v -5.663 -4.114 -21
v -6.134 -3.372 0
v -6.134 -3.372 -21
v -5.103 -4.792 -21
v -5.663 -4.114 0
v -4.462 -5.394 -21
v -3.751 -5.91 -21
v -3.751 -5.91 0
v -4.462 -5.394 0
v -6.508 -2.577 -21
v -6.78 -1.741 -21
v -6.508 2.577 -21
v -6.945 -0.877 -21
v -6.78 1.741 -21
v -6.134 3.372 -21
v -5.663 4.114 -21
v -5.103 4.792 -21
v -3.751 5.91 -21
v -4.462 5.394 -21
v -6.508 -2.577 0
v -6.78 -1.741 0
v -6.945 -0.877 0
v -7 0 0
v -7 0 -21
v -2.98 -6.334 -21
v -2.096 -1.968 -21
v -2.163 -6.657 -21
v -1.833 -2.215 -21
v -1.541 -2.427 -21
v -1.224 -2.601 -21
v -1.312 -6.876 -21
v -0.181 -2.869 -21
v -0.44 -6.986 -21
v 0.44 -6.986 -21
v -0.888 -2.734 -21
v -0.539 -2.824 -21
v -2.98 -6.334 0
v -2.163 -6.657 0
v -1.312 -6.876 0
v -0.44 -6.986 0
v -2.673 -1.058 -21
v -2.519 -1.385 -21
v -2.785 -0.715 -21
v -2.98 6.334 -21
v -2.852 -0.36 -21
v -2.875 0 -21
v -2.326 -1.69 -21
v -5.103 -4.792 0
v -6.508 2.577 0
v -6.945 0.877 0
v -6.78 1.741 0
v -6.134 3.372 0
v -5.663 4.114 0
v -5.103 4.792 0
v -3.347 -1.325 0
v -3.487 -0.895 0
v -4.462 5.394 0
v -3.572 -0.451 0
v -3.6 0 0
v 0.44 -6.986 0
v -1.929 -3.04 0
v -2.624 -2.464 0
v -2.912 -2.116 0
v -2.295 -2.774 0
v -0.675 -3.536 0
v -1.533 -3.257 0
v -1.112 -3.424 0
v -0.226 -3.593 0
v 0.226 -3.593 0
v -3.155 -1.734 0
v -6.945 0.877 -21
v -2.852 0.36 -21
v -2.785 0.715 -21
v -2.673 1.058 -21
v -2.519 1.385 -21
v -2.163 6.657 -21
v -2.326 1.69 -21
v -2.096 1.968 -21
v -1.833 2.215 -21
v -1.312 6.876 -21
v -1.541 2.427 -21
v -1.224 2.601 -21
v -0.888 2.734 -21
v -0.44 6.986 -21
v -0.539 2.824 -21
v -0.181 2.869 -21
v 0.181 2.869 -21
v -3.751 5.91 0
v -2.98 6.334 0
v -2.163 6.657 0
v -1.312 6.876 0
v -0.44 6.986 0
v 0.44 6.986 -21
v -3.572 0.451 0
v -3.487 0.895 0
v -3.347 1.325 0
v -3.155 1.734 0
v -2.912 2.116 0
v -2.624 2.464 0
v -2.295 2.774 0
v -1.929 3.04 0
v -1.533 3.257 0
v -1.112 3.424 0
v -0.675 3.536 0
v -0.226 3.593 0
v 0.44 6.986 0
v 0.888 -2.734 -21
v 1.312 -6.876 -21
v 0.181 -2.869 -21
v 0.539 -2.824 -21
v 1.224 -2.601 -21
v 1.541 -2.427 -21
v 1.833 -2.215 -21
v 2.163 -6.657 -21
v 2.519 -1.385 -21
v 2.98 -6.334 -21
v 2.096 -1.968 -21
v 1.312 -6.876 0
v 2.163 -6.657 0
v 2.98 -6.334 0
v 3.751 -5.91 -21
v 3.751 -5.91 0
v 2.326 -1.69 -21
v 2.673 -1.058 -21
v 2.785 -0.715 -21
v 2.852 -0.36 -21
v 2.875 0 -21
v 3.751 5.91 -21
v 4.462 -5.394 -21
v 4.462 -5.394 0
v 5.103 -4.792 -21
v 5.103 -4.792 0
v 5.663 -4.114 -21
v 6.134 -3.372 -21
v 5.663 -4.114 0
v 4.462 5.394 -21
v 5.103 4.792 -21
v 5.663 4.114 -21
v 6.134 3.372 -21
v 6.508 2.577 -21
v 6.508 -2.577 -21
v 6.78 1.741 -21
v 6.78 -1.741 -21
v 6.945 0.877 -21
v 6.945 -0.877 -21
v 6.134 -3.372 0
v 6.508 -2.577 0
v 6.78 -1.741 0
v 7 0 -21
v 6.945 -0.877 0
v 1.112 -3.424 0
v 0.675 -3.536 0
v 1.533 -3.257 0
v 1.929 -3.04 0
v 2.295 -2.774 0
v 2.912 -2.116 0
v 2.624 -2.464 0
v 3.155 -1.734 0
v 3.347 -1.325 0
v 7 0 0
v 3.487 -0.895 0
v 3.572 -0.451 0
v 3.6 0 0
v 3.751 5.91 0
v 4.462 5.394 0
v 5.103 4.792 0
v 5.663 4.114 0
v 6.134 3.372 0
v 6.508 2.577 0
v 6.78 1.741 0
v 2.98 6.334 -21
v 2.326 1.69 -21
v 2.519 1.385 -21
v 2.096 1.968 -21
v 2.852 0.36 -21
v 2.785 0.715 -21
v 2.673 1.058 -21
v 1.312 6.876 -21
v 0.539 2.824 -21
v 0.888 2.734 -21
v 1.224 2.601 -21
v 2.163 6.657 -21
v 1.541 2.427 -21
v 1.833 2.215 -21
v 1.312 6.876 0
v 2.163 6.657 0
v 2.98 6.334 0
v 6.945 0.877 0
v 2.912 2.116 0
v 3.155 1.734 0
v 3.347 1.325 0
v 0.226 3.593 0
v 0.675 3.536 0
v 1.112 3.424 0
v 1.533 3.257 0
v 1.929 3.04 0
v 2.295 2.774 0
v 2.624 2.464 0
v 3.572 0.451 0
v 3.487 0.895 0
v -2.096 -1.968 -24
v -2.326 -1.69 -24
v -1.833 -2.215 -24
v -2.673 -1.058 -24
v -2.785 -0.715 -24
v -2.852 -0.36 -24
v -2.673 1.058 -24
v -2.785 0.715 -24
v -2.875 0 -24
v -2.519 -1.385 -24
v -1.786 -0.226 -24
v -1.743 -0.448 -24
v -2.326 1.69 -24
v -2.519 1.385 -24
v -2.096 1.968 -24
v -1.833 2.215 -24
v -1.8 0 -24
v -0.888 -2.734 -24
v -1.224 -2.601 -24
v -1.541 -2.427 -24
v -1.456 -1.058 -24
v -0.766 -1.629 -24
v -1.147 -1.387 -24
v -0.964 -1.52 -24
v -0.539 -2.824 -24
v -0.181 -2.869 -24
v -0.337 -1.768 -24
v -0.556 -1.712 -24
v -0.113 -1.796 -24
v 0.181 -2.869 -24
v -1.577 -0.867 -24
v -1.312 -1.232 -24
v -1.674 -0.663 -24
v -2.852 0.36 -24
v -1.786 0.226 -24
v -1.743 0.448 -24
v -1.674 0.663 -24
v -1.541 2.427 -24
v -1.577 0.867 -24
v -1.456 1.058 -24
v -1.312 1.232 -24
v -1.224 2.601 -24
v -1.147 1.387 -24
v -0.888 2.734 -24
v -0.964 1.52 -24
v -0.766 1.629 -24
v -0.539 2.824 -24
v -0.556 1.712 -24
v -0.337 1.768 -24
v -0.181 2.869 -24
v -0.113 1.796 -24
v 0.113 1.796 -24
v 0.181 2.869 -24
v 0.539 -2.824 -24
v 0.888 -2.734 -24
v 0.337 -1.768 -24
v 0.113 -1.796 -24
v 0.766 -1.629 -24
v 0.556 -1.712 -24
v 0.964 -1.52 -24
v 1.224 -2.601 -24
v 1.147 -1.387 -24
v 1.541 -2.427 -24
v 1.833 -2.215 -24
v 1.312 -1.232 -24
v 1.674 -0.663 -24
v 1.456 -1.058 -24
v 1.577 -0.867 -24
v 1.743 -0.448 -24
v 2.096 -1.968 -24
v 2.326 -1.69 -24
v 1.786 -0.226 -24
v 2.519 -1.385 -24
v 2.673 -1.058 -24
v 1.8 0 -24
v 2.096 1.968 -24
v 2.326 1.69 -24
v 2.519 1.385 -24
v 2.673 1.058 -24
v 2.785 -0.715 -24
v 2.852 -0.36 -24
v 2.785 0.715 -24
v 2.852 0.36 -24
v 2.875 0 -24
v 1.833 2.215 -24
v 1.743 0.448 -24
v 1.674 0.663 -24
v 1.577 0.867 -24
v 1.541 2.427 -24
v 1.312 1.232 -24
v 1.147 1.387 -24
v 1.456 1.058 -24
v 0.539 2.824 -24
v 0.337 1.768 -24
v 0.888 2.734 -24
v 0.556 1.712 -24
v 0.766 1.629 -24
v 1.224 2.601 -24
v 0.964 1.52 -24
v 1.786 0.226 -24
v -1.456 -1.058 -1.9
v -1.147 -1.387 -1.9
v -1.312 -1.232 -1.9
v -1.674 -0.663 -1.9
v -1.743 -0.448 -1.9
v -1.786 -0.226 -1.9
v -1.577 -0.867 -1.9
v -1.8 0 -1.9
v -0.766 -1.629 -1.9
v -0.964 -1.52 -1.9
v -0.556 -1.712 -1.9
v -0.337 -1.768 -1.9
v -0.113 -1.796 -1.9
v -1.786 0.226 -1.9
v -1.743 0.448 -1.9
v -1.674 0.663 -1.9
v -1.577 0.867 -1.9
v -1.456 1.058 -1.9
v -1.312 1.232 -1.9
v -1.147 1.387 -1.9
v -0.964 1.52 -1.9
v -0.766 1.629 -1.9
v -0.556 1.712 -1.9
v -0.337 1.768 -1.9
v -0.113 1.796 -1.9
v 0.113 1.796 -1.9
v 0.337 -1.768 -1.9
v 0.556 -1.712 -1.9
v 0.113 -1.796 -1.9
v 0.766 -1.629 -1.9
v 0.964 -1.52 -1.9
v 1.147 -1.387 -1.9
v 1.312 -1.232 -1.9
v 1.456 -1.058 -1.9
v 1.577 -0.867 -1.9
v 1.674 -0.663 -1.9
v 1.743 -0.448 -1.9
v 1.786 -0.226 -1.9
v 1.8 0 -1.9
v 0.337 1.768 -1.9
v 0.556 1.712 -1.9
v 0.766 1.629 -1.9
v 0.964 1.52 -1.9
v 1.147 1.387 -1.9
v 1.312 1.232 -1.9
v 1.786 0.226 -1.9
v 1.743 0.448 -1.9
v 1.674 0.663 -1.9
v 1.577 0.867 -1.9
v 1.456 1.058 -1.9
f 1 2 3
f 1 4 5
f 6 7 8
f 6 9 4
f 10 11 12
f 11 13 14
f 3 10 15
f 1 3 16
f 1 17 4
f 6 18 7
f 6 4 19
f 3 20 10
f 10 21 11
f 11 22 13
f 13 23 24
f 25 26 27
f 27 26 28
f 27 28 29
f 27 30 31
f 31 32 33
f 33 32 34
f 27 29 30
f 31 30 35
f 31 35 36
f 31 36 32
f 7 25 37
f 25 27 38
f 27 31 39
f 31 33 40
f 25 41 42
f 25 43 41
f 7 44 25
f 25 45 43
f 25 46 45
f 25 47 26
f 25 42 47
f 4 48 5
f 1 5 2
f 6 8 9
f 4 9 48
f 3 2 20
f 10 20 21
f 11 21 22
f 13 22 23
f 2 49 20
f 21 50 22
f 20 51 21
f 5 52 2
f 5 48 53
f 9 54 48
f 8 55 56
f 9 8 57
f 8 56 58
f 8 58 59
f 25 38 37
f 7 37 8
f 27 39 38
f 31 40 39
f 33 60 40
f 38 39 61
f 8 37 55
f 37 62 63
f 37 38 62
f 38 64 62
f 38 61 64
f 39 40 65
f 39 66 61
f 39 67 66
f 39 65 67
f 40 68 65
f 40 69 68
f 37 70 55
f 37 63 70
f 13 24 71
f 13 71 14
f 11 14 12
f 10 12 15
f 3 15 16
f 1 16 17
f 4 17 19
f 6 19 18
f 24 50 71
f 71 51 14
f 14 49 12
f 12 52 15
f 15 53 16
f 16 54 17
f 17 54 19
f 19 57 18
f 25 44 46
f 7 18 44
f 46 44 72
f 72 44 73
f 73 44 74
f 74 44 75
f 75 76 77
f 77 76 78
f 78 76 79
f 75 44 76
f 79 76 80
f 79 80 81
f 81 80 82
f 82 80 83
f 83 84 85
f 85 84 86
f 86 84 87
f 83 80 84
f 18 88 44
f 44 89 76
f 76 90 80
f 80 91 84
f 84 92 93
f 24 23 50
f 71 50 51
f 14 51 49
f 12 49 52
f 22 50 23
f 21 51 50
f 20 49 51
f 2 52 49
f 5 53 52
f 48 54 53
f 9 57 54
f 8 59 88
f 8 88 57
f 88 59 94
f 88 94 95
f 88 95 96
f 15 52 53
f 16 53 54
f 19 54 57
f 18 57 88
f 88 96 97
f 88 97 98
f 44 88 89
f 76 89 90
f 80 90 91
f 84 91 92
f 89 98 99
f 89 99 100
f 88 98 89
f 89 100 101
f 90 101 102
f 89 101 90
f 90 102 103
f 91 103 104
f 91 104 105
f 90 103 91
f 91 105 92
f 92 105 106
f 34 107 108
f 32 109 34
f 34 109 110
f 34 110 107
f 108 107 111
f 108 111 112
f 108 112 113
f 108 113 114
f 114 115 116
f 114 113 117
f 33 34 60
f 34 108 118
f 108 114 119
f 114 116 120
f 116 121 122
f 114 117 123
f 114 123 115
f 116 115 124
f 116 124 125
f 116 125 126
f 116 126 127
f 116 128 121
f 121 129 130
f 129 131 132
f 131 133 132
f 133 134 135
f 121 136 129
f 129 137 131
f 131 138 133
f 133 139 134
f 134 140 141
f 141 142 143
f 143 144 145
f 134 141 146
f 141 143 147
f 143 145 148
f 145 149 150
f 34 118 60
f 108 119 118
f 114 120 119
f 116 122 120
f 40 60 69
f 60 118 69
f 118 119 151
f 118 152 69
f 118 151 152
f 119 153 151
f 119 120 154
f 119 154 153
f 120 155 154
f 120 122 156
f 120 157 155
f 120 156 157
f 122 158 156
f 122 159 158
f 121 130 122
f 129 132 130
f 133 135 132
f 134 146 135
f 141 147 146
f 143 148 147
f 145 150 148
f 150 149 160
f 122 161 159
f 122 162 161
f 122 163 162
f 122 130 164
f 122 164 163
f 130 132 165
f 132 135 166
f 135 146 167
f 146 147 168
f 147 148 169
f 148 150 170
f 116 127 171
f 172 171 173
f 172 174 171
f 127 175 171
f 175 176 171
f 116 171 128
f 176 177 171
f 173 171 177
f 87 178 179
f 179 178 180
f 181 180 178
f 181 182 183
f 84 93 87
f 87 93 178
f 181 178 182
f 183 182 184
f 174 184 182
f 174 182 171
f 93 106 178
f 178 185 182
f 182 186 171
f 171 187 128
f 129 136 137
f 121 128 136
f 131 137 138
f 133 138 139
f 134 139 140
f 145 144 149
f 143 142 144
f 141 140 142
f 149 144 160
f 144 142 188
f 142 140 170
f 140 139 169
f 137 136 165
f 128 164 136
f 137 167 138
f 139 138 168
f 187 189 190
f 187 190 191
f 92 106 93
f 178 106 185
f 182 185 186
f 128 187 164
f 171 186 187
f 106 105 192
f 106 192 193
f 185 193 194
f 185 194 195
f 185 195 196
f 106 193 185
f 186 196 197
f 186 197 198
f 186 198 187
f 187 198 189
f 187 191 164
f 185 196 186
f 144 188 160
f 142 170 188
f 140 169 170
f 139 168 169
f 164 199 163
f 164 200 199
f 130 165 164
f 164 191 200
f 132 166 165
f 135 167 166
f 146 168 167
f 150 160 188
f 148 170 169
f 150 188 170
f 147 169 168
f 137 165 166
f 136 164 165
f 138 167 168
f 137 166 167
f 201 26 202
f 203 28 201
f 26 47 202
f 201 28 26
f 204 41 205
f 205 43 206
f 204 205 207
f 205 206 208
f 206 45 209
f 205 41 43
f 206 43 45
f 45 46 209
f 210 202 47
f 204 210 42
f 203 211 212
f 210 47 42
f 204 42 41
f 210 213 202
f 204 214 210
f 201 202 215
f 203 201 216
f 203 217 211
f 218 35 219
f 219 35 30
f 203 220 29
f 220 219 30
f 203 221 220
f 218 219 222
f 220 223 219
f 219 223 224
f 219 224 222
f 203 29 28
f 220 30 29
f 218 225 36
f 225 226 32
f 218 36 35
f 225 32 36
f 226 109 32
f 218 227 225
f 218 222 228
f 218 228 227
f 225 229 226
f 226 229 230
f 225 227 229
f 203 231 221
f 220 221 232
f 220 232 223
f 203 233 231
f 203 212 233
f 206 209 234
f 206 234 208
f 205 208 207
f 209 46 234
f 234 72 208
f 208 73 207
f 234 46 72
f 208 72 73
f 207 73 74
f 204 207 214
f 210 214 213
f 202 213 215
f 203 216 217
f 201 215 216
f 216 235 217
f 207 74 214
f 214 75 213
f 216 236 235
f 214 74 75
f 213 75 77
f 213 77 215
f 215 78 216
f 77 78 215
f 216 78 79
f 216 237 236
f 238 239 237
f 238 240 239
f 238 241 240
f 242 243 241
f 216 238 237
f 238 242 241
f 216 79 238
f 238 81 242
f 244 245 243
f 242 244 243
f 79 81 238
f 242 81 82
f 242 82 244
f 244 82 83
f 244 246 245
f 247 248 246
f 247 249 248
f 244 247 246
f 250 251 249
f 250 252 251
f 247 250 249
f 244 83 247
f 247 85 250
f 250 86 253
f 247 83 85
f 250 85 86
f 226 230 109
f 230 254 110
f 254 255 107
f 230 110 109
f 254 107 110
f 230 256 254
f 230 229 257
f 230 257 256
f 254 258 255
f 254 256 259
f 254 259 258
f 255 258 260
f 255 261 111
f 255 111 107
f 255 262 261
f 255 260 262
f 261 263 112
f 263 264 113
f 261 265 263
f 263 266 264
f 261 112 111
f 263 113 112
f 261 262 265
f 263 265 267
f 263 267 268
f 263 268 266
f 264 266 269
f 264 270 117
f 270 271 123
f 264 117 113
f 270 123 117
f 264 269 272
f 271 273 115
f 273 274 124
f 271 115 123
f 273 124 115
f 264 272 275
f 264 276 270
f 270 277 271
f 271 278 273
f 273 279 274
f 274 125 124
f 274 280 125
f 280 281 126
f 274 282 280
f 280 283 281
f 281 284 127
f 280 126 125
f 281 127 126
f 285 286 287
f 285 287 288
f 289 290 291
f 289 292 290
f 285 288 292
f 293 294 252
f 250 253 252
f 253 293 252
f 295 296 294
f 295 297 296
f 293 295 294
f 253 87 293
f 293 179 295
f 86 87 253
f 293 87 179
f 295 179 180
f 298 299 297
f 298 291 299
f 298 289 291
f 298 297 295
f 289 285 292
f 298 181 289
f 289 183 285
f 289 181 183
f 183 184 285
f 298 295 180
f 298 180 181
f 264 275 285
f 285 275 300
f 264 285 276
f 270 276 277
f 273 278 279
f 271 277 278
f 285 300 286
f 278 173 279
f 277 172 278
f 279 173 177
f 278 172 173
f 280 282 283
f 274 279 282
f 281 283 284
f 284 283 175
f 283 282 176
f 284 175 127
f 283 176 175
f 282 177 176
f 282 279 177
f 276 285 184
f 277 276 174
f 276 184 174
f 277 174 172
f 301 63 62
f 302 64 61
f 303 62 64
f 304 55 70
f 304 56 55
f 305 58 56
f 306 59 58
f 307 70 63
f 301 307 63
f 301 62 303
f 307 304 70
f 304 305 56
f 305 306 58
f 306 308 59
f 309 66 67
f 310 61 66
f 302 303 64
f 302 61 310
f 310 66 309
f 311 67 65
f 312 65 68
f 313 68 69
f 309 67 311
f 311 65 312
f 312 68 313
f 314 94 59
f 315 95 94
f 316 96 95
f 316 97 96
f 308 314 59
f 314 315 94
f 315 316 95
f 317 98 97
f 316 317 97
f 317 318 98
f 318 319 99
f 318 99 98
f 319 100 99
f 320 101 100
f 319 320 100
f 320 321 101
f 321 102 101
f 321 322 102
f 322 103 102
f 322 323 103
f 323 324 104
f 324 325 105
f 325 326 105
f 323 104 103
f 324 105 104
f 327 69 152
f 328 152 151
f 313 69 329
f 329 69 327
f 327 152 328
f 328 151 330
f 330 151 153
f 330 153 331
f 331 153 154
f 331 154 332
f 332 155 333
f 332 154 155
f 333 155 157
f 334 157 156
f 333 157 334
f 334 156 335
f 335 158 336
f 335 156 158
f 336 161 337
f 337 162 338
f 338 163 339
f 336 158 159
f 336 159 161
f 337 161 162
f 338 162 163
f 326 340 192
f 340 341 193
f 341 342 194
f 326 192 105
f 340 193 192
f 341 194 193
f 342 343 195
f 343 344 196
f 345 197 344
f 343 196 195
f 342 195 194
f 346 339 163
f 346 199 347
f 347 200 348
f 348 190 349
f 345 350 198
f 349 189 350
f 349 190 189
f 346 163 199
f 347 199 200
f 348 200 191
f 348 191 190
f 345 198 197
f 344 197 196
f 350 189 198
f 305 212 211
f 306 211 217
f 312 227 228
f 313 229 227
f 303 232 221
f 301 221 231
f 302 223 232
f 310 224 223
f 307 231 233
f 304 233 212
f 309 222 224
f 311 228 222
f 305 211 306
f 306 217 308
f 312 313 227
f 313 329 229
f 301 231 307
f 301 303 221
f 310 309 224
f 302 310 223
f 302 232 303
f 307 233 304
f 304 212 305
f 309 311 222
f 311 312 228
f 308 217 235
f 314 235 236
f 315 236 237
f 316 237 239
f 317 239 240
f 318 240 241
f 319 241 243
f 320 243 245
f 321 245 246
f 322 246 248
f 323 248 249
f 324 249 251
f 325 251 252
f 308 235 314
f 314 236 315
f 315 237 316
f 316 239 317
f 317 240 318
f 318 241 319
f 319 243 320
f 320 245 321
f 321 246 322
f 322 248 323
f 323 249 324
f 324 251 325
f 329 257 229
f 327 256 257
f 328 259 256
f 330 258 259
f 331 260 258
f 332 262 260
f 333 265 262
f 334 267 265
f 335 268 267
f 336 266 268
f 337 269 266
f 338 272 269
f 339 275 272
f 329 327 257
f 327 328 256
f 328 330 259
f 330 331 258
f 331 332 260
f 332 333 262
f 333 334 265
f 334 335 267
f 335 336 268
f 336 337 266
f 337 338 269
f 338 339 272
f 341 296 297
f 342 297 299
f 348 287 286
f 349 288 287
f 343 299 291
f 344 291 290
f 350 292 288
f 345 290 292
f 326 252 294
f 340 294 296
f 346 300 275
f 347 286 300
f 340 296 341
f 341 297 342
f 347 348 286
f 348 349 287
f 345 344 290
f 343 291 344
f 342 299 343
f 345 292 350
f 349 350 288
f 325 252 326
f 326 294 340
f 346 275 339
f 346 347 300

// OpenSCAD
$fn = 50;


difference() {
	union() {
		translate(v = [0, 0, -21.0000000000]) {
			cylinder(h = 21, r = 7.0000000000);
		}
		#translate(v = [0, 0, -24.0000000000]) {
			cylinder(h = 24, r = 2.8750000000);
		}
	}
	union() {
		translate(v = [0, 0, 0]) {
			rotate(a = [0, 0, 0]) {
				difference() {
					union() {
						translate(v = [0, 0, -24.0000000000]) {
							cylinder(h = 24, r = 1.5000000000);
						}
						translate(v = [0, 0, -1.9000000000]) {
							cylinder(h = 1.9000000000, r1 = 1.8000000000, r2 = 3.6000000000);
						}
						translate(v = [0, 0, -24.0000000000]) {
							cylinder(h = 24, r = 1.8000000000);
						}
						translate(v = [0, 0, -24.0000000000]) {
							cylinder(h = 24, r = 1.5000000000);
						}
					}
					union();
				}
			}
		}
	}
}
